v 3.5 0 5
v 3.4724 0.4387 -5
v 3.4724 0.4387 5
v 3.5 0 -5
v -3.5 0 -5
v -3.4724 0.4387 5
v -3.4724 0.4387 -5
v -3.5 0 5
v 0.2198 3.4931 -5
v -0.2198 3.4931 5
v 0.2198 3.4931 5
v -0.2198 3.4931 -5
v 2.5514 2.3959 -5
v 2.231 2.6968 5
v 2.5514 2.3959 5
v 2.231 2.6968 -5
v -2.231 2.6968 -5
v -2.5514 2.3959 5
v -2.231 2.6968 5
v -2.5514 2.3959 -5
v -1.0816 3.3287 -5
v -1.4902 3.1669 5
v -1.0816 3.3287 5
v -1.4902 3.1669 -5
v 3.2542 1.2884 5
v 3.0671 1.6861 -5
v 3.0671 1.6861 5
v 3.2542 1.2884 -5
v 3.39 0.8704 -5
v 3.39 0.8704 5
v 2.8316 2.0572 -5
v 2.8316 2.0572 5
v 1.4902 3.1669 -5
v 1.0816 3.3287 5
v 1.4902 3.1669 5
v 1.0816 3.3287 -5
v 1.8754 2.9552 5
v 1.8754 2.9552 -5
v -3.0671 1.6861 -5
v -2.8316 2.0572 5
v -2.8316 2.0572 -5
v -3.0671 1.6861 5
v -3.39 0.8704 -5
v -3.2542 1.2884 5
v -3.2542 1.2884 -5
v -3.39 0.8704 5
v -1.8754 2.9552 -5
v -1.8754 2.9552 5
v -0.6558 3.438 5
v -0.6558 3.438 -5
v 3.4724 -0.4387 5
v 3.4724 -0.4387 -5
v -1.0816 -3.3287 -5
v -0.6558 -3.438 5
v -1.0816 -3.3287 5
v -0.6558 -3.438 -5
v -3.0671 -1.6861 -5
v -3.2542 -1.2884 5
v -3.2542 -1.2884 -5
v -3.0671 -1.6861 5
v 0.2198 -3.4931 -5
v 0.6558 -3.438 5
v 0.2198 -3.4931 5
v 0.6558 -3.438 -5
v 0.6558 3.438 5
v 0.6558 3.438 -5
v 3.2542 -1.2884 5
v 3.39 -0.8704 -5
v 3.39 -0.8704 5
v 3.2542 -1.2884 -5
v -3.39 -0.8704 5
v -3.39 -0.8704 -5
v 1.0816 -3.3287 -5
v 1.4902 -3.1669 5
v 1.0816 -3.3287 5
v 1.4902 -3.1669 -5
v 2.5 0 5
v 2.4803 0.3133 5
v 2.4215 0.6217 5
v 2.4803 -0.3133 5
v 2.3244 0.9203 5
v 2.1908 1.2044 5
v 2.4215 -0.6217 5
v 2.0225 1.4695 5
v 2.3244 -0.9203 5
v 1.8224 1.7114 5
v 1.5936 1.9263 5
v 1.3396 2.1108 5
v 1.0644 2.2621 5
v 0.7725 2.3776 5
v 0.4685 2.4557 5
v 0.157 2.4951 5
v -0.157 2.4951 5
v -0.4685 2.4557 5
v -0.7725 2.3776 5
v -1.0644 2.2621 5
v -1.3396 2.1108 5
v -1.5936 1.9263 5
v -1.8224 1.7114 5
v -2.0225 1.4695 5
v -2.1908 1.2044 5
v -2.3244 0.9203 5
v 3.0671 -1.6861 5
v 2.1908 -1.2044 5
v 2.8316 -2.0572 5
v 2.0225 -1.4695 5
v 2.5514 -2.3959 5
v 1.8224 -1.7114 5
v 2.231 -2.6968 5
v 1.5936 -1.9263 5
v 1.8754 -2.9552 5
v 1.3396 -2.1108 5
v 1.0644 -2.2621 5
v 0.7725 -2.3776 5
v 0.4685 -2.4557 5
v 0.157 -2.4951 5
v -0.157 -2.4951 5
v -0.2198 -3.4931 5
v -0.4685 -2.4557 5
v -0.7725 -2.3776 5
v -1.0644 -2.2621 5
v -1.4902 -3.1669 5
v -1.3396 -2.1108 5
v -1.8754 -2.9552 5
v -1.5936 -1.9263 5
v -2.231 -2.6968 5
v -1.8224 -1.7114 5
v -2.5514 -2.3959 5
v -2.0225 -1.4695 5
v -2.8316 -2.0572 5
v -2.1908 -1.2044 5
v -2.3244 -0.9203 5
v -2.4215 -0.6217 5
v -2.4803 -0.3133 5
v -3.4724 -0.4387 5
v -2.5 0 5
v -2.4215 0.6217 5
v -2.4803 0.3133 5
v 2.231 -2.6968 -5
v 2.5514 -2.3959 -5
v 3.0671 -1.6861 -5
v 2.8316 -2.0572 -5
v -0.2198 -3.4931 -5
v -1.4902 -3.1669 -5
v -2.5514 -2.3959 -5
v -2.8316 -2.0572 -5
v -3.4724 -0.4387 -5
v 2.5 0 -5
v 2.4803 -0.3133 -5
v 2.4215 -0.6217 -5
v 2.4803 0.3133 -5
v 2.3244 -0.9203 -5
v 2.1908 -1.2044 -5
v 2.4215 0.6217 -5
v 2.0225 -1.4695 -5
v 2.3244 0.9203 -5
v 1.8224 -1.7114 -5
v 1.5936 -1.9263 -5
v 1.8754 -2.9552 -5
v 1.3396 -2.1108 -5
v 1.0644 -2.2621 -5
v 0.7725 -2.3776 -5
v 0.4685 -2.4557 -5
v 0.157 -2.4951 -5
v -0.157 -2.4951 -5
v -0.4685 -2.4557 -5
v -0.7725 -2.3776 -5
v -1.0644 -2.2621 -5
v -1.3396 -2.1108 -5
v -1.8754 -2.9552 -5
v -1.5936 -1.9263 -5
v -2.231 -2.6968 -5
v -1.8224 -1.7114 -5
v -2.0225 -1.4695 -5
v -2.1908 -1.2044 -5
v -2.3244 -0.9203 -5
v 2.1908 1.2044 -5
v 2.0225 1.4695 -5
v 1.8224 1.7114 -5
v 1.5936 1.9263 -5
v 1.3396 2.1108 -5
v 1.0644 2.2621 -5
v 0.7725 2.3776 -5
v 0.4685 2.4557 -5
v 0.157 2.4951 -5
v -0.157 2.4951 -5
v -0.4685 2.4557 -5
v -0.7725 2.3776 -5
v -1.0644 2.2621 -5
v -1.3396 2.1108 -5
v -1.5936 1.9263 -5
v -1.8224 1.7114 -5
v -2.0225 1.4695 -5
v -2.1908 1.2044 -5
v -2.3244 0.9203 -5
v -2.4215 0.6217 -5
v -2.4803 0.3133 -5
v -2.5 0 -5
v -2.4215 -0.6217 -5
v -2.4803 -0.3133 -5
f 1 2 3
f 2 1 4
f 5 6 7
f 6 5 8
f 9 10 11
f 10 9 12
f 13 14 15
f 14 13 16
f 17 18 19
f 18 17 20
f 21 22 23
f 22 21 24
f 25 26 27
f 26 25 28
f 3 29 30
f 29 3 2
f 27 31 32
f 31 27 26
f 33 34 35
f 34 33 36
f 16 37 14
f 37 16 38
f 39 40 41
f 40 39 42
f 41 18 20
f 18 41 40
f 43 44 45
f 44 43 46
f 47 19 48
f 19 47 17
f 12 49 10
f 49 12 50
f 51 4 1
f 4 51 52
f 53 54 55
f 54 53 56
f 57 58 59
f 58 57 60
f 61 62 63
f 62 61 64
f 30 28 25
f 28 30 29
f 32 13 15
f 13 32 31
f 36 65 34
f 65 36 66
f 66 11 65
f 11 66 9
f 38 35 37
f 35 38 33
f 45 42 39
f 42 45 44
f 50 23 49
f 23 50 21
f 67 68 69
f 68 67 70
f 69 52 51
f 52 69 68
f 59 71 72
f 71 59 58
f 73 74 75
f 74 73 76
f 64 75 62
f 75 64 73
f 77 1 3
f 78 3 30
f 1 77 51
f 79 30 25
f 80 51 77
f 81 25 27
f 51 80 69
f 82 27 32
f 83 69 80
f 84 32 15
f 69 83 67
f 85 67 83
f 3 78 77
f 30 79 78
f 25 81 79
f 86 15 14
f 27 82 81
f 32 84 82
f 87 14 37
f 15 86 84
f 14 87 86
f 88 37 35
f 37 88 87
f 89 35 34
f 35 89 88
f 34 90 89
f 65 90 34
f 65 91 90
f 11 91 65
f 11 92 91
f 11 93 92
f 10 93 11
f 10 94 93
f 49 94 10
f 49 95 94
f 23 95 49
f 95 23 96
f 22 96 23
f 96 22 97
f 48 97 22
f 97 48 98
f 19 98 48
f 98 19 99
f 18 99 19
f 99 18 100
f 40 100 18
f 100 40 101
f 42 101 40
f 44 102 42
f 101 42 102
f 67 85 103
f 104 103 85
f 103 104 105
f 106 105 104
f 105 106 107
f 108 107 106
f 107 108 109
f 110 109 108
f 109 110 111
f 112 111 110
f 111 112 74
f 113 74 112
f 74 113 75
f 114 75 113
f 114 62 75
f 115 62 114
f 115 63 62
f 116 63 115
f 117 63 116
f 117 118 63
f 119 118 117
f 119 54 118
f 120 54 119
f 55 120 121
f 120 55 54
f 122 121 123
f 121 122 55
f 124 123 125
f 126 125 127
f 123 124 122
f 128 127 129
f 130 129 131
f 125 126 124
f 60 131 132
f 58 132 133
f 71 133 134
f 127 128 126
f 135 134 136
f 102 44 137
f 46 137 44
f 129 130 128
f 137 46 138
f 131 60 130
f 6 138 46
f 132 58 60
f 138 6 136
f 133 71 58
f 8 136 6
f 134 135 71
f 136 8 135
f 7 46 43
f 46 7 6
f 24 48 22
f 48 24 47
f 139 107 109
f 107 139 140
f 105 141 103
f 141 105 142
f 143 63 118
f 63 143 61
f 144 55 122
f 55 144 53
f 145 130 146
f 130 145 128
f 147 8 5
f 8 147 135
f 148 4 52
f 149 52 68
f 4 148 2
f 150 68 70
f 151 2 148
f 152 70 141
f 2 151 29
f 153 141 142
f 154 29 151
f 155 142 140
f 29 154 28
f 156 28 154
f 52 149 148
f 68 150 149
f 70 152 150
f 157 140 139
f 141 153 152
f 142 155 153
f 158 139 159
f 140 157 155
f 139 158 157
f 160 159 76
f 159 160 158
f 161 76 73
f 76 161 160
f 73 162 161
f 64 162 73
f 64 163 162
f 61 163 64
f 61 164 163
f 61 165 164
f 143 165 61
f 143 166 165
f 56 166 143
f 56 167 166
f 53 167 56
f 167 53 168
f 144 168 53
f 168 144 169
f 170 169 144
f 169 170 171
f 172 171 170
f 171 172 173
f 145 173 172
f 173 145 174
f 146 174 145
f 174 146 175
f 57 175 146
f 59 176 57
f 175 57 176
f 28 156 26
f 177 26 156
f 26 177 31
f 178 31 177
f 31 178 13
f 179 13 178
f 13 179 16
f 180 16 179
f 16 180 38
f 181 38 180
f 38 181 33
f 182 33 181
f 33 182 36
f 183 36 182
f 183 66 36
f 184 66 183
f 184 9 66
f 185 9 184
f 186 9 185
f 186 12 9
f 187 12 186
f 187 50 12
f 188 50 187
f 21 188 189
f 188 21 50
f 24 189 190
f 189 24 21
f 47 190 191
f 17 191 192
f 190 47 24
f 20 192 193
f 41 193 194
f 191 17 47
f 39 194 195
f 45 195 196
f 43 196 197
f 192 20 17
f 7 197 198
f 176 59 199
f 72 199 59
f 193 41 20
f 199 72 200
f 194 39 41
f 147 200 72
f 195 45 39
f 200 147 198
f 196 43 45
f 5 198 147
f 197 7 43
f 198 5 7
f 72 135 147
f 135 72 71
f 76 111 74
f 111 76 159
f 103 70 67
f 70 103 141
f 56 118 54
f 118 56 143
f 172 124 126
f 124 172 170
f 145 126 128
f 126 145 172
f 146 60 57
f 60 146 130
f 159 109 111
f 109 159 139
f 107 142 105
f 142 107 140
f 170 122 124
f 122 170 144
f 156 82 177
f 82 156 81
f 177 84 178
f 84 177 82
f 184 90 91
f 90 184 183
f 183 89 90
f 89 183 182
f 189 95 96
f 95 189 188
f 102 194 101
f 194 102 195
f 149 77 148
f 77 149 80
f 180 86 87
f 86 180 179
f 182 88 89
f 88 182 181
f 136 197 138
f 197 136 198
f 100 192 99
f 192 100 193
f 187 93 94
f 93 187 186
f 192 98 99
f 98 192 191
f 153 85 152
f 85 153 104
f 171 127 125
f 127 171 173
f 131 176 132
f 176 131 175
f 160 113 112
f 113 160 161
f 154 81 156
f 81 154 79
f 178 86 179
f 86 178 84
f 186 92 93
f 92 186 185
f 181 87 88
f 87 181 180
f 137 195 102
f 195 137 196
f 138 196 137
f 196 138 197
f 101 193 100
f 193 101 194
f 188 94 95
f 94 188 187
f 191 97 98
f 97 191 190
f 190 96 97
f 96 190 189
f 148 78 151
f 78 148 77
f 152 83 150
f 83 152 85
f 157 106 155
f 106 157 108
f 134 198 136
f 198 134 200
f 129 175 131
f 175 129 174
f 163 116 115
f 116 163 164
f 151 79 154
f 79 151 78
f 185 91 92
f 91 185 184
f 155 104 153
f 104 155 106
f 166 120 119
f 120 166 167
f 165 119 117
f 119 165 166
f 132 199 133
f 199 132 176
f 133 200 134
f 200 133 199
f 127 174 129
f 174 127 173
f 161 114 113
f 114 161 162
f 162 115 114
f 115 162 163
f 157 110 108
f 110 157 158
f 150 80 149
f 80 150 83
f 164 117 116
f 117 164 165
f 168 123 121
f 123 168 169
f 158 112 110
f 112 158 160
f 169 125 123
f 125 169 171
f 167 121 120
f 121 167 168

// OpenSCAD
$fn = 50;


difference() {
	union() {
		translate(v = [0, 0, -5.0000000000]) {
			cylinder(h = 10, r = 3.5000000000);
		}
	}
	union() {
		translate(v = [0, 0, -100.0000000000]) {
			cylinder(h = 200, r = 2.5000000000);
		}
	}
}
